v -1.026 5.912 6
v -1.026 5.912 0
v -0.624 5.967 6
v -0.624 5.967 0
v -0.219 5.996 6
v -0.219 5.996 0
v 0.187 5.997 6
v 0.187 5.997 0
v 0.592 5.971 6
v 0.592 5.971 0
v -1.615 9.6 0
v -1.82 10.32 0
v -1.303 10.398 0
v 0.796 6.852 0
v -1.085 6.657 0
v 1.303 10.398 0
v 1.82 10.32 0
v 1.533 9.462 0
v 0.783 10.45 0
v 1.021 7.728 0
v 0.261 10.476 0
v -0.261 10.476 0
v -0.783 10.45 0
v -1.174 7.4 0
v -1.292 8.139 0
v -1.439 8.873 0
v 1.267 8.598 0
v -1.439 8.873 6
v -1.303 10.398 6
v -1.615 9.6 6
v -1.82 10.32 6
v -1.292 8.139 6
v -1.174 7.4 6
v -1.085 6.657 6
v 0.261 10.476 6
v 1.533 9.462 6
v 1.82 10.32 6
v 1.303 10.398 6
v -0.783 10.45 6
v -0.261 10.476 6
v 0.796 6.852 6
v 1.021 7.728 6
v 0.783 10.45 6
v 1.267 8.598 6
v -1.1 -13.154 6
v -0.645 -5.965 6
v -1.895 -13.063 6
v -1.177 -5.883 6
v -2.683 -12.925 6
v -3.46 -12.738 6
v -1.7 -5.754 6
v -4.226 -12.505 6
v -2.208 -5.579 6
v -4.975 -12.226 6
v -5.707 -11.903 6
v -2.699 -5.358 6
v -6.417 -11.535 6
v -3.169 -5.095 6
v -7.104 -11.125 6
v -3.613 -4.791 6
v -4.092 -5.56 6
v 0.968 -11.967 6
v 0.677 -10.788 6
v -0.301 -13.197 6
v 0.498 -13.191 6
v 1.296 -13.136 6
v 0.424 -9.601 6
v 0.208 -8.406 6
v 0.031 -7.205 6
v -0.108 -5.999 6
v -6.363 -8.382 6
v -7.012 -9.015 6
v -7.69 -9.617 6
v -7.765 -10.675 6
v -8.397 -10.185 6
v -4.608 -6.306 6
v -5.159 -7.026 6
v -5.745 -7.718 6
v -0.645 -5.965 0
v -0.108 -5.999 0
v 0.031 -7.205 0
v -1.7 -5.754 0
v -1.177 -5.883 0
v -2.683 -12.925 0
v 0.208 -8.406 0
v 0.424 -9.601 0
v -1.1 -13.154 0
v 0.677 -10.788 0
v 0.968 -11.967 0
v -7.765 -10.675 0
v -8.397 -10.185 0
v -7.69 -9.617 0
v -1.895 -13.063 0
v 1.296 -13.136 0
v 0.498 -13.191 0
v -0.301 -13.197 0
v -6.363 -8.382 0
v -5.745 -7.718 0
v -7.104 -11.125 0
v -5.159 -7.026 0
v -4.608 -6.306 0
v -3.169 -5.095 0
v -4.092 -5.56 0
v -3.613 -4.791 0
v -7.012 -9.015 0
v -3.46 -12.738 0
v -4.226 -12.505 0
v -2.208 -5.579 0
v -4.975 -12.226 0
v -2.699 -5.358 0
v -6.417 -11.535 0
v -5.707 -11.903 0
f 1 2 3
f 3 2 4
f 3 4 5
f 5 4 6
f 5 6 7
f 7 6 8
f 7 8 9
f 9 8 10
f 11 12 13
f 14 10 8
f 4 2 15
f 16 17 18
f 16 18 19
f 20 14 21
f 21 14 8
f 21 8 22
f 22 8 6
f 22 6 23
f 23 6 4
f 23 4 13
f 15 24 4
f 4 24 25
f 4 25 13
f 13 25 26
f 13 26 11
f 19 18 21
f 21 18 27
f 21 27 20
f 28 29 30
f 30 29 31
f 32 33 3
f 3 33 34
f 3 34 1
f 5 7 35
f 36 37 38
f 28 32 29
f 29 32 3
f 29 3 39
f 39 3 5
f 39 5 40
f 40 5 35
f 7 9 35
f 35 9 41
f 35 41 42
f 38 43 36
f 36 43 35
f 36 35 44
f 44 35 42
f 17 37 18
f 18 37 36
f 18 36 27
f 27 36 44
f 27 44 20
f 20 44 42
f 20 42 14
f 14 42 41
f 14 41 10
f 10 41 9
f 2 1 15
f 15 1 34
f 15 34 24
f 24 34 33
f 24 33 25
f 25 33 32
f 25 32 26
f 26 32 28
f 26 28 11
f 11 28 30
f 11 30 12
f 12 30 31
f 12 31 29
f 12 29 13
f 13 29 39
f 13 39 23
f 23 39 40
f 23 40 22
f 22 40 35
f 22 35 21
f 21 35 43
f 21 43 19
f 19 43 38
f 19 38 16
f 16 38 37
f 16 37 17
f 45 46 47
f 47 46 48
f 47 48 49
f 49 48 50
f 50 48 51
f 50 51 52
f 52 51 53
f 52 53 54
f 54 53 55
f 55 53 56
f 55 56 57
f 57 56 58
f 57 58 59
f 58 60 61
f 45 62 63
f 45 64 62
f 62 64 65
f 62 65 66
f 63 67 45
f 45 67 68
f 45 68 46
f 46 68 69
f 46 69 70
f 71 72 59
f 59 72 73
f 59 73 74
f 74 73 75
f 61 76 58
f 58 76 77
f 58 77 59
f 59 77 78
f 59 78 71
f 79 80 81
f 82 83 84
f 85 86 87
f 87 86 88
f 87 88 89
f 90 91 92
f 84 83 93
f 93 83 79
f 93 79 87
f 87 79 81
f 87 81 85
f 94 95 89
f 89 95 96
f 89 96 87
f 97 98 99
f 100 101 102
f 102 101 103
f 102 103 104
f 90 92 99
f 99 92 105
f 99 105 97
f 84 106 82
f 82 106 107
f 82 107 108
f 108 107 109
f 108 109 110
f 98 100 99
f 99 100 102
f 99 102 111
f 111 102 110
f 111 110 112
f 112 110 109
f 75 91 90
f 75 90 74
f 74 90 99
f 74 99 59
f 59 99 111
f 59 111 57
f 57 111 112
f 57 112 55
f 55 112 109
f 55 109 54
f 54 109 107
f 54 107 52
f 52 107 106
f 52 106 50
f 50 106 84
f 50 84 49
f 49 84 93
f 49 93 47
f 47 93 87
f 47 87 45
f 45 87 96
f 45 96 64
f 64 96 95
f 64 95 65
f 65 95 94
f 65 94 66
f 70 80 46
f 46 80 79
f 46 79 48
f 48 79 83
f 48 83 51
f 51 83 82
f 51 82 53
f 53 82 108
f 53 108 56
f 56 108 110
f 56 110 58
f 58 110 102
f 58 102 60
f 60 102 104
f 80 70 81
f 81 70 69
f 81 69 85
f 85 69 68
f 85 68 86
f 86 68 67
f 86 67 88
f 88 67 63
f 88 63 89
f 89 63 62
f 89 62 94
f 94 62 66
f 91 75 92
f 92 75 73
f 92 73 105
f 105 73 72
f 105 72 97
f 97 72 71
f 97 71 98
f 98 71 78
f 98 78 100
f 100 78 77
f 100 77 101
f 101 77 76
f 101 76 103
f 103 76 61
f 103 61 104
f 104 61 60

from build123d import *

# Parameters (mm, degrees)
SKETCH1_R           = 13.2
SKETCH1_R_2         = 6
BOSS_EXTRUDE1_DEPTH = 6
CUT_EXTRUDE1_DEPTH  = 7


with BuildPart() as part:
    # Sketch1 → Boss-Extrude1 (new body)
    with BuildSketch(Plane.XY):
        Circle(SKETCH1_R)
        Circle(SKETCH1_R_2, mode=Mode.SUBTRACT)
    extrude(amount=BOSS_EXTRUDE1_DEPTH)

    # Sketch2 → Cut-Extrude1 (cut, through all)
    with BuildSketch(Plane.XY.offset(6)):
        with BuildLine():
            ThreePointArc((-2.819851171, 12.895287487), (0, 13.2), (2.819851171, 12.895287487))
            ThreePointArc((2.819851171, 12.895287487), (73.562082536, -16.056153687), (1.819851171, 10.32))
            ThreePointArc((1.819851171, 10.32), (0, 10.479229852), (-1.819851171, 10.32))
            ThreePointArc((-1.819851171, 10.32), (-37.439635871, -2.029585062), (-2.819851171, 12.895287487))
        make_face()
    extrude(amount=-CUT_EXTRUDE1_DEPTH, mode=Mode.SUBTRACT)


solid = part.part
